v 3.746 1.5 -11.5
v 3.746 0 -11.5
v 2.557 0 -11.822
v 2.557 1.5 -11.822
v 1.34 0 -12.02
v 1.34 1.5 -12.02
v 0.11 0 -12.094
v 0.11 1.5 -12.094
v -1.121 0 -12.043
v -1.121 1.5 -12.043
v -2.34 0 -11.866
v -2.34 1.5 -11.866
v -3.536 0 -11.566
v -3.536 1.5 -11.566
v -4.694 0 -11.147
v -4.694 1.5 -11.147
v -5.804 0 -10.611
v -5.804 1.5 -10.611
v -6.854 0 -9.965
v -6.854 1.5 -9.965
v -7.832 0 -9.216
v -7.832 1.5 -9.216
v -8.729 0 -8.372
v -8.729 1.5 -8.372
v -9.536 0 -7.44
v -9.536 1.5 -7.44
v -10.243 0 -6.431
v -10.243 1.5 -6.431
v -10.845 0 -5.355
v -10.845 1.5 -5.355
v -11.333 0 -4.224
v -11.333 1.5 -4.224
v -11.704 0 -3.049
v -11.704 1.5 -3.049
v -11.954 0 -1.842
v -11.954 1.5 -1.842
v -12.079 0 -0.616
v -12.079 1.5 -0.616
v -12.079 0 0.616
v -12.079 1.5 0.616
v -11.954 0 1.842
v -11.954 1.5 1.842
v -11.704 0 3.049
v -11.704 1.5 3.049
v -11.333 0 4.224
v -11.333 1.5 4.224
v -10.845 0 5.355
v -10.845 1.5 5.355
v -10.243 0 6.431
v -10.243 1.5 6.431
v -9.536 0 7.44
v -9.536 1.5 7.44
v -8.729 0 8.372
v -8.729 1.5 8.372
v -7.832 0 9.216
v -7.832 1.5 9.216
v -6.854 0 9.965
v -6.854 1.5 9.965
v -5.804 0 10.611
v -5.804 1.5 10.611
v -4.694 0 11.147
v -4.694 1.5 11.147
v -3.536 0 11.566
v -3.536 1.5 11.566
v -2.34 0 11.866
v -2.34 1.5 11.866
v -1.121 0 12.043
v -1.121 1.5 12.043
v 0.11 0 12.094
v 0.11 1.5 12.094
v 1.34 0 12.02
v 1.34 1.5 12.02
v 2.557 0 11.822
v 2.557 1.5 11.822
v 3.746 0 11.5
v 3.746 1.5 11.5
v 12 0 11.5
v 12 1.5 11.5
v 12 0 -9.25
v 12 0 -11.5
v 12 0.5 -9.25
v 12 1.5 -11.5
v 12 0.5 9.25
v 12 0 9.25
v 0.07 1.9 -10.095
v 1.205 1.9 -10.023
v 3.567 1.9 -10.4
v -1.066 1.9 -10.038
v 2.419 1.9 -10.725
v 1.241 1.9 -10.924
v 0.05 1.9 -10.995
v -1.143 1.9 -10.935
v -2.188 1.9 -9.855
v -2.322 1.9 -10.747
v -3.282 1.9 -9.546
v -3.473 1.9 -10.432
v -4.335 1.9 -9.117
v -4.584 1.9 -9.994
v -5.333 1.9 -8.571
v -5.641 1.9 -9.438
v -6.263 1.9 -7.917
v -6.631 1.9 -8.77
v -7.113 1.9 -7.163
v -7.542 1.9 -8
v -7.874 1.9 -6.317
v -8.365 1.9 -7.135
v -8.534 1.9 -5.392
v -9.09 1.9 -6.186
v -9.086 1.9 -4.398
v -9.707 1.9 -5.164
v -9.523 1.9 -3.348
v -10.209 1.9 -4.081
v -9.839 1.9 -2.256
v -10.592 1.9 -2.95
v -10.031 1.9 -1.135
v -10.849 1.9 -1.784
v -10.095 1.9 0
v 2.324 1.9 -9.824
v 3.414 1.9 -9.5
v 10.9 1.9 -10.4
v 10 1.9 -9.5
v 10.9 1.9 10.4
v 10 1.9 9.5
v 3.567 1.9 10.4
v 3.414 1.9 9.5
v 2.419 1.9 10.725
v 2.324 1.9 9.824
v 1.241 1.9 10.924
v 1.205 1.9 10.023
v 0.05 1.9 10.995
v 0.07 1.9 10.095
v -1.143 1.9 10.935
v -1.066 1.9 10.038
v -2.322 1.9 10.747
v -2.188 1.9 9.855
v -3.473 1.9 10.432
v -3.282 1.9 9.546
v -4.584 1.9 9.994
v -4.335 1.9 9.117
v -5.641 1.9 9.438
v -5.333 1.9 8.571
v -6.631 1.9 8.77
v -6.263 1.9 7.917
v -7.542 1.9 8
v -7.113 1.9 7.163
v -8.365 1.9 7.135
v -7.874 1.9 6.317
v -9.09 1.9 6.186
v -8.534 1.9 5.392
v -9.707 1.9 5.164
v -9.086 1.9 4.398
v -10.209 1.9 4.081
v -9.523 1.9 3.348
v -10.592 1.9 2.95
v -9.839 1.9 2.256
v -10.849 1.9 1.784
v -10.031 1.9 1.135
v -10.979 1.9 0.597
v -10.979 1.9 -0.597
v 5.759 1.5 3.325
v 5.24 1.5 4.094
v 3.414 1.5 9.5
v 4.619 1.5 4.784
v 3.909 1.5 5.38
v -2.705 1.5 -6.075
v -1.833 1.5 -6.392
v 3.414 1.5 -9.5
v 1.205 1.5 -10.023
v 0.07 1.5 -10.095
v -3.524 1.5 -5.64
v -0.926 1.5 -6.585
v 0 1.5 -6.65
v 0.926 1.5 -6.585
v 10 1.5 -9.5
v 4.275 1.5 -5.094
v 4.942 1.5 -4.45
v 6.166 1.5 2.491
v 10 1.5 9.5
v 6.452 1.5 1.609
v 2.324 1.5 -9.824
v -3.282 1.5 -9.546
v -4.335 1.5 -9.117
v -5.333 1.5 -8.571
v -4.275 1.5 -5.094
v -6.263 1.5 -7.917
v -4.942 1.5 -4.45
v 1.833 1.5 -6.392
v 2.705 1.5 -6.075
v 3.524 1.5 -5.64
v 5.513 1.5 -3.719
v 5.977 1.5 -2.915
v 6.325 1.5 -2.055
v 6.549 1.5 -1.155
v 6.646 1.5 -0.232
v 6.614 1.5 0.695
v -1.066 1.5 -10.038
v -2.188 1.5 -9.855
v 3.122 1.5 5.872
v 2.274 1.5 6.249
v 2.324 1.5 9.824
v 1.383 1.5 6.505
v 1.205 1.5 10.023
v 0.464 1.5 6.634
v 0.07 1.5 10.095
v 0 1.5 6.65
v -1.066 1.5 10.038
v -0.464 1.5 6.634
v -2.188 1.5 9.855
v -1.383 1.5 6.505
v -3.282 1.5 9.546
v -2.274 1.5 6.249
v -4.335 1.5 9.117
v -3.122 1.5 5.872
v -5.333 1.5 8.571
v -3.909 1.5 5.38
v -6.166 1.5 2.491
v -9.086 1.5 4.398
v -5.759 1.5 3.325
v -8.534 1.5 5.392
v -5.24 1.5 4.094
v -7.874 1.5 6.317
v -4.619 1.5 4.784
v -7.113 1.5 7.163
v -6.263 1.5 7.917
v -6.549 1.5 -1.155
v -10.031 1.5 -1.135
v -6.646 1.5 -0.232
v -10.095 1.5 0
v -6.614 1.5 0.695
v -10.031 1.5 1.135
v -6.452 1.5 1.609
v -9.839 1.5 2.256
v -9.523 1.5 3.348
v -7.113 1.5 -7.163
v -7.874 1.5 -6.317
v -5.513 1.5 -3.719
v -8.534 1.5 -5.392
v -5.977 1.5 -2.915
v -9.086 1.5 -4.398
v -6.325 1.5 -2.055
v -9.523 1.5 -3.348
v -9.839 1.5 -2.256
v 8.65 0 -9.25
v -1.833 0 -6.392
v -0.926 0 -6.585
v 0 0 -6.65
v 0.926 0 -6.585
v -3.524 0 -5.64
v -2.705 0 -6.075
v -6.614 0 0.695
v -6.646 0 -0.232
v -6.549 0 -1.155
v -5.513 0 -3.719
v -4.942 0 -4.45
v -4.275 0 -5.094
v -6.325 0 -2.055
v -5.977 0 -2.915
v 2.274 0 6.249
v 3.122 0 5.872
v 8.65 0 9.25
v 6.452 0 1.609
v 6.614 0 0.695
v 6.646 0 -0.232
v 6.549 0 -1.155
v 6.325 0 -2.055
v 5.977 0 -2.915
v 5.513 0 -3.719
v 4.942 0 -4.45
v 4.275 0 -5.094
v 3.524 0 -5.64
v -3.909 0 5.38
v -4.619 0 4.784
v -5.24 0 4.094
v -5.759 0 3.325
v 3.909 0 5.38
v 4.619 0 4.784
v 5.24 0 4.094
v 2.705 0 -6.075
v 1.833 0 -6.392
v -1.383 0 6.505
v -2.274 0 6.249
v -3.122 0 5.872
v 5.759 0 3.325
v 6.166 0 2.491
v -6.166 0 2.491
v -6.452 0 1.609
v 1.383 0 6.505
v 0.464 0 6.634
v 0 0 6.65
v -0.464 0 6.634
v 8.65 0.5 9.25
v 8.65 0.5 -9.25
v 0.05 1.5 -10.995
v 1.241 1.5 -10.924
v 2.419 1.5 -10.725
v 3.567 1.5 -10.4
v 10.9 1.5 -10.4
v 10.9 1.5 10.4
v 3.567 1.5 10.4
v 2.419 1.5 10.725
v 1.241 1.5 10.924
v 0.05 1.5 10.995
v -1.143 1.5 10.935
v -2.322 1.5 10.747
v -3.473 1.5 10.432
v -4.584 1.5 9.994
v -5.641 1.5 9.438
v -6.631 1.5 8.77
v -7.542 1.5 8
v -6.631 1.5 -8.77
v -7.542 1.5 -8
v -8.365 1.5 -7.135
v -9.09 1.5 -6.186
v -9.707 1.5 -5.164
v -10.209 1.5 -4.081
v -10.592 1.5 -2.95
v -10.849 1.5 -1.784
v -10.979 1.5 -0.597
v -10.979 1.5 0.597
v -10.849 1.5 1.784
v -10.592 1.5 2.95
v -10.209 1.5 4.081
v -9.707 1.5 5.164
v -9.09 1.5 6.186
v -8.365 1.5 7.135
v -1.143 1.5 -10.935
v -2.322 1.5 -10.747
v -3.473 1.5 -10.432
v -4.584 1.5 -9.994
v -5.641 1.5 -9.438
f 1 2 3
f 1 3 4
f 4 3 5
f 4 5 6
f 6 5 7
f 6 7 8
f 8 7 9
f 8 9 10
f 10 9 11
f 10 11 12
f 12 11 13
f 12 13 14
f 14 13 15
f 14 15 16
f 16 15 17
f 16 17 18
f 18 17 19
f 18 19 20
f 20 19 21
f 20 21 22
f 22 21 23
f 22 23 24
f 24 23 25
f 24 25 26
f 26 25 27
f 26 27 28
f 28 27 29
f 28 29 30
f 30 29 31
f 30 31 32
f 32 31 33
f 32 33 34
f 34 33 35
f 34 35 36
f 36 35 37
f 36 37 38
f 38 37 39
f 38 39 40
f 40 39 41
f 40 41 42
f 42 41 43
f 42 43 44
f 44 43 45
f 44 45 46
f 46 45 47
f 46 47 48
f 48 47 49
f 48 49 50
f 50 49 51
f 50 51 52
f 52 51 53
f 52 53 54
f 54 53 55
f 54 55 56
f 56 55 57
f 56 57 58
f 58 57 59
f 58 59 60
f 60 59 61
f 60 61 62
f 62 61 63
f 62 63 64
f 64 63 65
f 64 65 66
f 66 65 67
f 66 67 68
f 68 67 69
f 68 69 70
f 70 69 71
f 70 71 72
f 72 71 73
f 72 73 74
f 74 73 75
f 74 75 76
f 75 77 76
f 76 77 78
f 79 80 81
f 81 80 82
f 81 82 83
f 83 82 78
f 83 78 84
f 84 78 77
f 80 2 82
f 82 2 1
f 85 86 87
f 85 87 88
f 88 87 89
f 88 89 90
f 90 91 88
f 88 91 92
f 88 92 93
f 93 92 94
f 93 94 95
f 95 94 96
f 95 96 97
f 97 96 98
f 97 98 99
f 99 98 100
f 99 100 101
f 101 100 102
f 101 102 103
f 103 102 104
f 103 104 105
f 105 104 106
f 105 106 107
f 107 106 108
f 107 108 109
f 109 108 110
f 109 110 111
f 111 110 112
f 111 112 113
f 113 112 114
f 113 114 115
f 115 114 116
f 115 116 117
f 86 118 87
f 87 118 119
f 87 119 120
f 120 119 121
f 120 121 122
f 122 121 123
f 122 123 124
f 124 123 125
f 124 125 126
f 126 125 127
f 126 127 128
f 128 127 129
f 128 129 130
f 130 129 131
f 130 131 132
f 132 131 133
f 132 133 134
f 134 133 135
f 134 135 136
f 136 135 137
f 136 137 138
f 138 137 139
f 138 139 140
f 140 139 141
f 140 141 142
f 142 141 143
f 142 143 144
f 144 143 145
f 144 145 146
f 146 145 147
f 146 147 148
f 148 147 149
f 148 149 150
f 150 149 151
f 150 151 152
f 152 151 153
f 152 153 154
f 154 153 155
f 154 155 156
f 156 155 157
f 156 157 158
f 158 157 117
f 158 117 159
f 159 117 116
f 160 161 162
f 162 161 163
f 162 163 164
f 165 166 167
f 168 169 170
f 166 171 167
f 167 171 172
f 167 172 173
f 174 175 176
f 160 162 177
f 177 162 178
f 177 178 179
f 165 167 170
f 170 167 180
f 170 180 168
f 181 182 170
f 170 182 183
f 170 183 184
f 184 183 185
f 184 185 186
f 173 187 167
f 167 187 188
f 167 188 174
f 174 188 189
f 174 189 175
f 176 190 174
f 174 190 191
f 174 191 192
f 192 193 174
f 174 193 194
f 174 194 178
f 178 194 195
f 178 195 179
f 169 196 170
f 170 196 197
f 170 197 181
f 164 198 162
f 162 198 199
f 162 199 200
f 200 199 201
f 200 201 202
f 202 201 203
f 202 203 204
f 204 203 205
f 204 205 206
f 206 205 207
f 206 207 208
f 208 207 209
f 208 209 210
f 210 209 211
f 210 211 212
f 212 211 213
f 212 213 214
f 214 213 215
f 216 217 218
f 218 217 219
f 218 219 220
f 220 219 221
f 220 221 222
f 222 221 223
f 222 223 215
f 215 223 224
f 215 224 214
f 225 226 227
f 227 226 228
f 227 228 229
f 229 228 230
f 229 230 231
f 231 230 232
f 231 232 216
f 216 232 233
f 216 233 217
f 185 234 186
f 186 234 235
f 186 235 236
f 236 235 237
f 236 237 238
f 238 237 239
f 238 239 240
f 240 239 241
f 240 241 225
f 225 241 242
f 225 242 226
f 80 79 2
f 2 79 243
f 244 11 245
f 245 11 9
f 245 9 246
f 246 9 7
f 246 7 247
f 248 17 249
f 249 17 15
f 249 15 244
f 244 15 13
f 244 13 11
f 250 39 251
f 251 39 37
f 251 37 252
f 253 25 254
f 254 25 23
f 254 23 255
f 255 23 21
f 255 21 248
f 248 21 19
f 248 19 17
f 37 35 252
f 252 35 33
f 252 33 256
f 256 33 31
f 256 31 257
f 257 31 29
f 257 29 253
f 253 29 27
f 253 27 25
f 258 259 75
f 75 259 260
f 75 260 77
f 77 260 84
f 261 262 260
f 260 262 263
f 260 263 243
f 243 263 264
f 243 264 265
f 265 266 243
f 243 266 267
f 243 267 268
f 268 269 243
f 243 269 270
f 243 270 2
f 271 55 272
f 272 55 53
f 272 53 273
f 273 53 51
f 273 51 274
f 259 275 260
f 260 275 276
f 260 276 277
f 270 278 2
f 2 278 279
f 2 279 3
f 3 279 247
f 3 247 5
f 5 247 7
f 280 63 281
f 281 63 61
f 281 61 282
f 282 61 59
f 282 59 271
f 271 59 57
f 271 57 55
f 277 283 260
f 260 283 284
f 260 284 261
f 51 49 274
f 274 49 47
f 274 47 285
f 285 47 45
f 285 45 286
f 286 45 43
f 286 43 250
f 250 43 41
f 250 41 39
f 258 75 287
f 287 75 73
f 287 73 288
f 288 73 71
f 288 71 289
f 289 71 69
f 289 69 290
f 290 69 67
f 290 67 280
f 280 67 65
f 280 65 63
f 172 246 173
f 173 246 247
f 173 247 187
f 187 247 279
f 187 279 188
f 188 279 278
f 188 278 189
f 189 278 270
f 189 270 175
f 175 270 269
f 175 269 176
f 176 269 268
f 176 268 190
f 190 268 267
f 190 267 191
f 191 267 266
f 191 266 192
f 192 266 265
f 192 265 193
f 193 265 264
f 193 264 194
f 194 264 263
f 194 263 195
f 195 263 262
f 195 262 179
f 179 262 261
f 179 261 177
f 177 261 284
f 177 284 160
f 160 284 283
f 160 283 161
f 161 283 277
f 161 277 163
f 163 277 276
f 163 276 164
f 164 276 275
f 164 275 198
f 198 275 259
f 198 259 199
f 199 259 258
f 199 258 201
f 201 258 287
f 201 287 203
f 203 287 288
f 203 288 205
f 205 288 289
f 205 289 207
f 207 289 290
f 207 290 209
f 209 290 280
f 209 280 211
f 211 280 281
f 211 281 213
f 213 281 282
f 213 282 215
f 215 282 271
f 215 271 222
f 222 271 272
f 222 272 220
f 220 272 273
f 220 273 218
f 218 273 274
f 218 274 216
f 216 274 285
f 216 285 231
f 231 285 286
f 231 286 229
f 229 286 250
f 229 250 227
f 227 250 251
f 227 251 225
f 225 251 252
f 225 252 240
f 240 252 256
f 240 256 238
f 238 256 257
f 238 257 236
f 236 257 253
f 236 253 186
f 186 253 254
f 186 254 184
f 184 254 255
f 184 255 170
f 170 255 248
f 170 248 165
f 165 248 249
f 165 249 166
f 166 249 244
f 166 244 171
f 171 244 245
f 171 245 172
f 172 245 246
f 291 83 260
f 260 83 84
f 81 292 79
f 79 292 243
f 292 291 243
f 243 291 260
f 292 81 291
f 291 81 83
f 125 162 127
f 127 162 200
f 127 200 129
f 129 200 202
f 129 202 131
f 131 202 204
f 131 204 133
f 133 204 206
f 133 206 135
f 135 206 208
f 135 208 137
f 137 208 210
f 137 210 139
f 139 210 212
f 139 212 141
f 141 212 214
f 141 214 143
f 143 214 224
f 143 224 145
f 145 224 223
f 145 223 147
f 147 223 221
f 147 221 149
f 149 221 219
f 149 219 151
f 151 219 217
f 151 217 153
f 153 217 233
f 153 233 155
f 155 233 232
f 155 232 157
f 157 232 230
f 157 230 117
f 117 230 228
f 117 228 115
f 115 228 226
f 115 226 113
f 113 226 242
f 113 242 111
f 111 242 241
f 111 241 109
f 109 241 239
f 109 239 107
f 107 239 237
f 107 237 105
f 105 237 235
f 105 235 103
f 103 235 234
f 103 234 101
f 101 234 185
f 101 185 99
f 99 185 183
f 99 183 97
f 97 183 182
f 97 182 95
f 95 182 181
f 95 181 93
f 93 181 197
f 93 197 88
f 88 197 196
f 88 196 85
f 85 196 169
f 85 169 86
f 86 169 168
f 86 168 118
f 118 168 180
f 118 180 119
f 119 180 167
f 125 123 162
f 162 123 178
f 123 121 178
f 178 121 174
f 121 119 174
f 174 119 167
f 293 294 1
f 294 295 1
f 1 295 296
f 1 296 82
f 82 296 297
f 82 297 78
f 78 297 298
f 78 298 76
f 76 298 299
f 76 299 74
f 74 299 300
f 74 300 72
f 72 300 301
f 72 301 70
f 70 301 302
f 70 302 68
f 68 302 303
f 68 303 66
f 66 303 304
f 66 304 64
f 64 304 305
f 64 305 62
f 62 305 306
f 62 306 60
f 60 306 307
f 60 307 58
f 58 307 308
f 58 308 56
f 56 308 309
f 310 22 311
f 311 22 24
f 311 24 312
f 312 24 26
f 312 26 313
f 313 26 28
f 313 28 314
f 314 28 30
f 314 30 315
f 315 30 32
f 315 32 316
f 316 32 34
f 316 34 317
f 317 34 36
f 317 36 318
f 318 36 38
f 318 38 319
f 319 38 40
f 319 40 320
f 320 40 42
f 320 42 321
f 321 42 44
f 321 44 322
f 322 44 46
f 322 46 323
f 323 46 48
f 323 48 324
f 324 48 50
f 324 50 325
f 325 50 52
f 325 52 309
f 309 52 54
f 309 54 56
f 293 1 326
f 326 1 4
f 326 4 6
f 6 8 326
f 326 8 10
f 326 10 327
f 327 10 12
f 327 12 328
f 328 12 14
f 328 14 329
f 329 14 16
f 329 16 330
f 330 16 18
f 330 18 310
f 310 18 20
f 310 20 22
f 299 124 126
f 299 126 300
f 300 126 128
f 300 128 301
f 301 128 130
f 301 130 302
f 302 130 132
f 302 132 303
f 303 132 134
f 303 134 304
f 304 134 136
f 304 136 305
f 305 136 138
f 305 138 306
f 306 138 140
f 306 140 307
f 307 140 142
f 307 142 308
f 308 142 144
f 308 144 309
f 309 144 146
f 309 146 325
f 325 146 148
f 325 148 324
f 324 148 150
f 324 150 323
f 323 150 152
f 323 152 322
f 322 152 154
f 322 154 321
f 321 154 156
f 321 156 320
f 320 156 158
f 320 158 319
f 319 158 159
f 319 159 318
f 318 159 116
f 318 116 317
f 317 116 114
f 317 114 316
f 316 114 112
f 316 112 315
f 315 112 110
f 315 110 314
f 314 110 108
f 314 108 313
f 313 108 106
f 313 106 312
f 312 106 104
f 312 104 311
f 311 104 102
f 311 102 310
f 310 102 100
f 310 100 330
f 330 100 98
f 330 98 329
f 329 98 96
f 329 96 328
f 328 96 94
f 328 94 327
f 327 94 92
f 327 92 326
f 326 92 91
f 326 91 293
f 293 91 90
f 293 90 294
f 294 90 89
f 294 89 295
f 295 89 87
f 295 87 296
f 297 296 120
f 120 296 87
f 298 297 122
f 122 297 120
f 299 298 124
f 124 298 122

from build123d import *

# Parameters (mm, degrees)
SKETCH_1_R            = 6.65
EXTRUDE_1_DEPTH       = 1.5
SKETCH_2_W            = 3.35
SKETCH_2_H            = 18.5
CUT_EXTRUDE_1_DEPTH   = 0.5
EXTRUDE_1_2_DEPTH     = 0.4
CUT_EXTRUDE_1_2_DEPTH = 0.4


with BuildPart() as part:
    # Эскиз1 → Extrude 1 (new body)
    with BuildSketch(Plane(origin=(0, 0, 0), x_dir=(1, 0, 0), z_dir=(0, 1, 0))):
        with BuildLine():
            Line((3.746255484, -11.5), (12, -11.5))
            Line((12, -11.5), (12, 11.5))
            Line((12, 11.5), (7.873127742, 11.5))
            Line((7.873127742, 11.5), (3.746255484, 11.5))
            ThreePointArc((3.746255484, 11.5), (-12.09481005, 0), (3.746255484, -11.5))
        make_face()
        Circle(SKETCH_1_R, mode=Mode.SUBTRACT)
    extrude(amount=EXTRUDE_1_DEPTH)

    # Эскиз2 → Cut-Extrude 1 (cut)
    with BuildSketch(Plane.XZ):
        with Locations((10.325, 0)):
            Rectangle(SKETCH_2_W, SKETCH_2_H)
    extrude(amount=-CUT_EXTRUDE_1_DEPTH, mode=Mode.SUBTRACT)

    # Эскиз3 → Extrude 1 2 (add)
    with BuildSketch(Plane(origin=(0, 1.5, 0), x_dir=(1, 0, 0), z_dir=(0, 1, 0))):
        with BuildLine():
            Line((3.746255484, -11.5), (12, -11.5))
            Line((12, -11.5), (12, 11.5))
            Line((12, 11.5), (3.746255484, 11.5))
            ThreePointArc((3.746255484, 11.5), (-12.09481005, 0), (3.746255484, -11.5))
        make_face()
        with BuildLine():
            Line((3.413969823, -9.5), (10, -9.5))
            Line((10, -9.5), (10, 9.5))
            Line((10, 9.5), (3.413969823, 9.5))
            ThreePointArc((3.413969823, 9.5), (-10.09481005, 0), (3.413969823, -9.5))
        make_face(mode=Mode.SUBTRACT)
    extrude(amount=EXTRUDE_1_2_DEPTH)

    # Эскиз4 → Cut-Extrude 1 2 (cut)
    with BuildSketch(Plane(origin=(0, 1.9, 0), x_dir=(1, 0, 0), z_dir=(0, 1, 0))):
        with BuildLine():
            Line((3.746255484, -11.5), (12, -11.5))
            Line((12, -11.5), (12, 11.5))
            Line((12, 11.5), (3.746255484, 11.5))
            ThreePointArc((3.746255484, 11.5), (-12.09481005, 0), (3.746255484, -11.5))
        make_face()
        with BuildLine():
            Line((3.56733066, -10.4), (10.9, -10.4))
            Line((10.9, -10.4), (10.9, 10.4))
            Line((10.9, 10.4), (3.56733066, 10.4))
            ThreePointArc((3.56733066, 10.4), (-10.99481005, 0), (3.56733066, -10.4))
        make_face(mode=Mode.SUBTRACT)
    extrude(amount=-CUT_EXTRUDE_1_2_DEPTH, mode=Mode.SUBTRACT)


solid = part.part
